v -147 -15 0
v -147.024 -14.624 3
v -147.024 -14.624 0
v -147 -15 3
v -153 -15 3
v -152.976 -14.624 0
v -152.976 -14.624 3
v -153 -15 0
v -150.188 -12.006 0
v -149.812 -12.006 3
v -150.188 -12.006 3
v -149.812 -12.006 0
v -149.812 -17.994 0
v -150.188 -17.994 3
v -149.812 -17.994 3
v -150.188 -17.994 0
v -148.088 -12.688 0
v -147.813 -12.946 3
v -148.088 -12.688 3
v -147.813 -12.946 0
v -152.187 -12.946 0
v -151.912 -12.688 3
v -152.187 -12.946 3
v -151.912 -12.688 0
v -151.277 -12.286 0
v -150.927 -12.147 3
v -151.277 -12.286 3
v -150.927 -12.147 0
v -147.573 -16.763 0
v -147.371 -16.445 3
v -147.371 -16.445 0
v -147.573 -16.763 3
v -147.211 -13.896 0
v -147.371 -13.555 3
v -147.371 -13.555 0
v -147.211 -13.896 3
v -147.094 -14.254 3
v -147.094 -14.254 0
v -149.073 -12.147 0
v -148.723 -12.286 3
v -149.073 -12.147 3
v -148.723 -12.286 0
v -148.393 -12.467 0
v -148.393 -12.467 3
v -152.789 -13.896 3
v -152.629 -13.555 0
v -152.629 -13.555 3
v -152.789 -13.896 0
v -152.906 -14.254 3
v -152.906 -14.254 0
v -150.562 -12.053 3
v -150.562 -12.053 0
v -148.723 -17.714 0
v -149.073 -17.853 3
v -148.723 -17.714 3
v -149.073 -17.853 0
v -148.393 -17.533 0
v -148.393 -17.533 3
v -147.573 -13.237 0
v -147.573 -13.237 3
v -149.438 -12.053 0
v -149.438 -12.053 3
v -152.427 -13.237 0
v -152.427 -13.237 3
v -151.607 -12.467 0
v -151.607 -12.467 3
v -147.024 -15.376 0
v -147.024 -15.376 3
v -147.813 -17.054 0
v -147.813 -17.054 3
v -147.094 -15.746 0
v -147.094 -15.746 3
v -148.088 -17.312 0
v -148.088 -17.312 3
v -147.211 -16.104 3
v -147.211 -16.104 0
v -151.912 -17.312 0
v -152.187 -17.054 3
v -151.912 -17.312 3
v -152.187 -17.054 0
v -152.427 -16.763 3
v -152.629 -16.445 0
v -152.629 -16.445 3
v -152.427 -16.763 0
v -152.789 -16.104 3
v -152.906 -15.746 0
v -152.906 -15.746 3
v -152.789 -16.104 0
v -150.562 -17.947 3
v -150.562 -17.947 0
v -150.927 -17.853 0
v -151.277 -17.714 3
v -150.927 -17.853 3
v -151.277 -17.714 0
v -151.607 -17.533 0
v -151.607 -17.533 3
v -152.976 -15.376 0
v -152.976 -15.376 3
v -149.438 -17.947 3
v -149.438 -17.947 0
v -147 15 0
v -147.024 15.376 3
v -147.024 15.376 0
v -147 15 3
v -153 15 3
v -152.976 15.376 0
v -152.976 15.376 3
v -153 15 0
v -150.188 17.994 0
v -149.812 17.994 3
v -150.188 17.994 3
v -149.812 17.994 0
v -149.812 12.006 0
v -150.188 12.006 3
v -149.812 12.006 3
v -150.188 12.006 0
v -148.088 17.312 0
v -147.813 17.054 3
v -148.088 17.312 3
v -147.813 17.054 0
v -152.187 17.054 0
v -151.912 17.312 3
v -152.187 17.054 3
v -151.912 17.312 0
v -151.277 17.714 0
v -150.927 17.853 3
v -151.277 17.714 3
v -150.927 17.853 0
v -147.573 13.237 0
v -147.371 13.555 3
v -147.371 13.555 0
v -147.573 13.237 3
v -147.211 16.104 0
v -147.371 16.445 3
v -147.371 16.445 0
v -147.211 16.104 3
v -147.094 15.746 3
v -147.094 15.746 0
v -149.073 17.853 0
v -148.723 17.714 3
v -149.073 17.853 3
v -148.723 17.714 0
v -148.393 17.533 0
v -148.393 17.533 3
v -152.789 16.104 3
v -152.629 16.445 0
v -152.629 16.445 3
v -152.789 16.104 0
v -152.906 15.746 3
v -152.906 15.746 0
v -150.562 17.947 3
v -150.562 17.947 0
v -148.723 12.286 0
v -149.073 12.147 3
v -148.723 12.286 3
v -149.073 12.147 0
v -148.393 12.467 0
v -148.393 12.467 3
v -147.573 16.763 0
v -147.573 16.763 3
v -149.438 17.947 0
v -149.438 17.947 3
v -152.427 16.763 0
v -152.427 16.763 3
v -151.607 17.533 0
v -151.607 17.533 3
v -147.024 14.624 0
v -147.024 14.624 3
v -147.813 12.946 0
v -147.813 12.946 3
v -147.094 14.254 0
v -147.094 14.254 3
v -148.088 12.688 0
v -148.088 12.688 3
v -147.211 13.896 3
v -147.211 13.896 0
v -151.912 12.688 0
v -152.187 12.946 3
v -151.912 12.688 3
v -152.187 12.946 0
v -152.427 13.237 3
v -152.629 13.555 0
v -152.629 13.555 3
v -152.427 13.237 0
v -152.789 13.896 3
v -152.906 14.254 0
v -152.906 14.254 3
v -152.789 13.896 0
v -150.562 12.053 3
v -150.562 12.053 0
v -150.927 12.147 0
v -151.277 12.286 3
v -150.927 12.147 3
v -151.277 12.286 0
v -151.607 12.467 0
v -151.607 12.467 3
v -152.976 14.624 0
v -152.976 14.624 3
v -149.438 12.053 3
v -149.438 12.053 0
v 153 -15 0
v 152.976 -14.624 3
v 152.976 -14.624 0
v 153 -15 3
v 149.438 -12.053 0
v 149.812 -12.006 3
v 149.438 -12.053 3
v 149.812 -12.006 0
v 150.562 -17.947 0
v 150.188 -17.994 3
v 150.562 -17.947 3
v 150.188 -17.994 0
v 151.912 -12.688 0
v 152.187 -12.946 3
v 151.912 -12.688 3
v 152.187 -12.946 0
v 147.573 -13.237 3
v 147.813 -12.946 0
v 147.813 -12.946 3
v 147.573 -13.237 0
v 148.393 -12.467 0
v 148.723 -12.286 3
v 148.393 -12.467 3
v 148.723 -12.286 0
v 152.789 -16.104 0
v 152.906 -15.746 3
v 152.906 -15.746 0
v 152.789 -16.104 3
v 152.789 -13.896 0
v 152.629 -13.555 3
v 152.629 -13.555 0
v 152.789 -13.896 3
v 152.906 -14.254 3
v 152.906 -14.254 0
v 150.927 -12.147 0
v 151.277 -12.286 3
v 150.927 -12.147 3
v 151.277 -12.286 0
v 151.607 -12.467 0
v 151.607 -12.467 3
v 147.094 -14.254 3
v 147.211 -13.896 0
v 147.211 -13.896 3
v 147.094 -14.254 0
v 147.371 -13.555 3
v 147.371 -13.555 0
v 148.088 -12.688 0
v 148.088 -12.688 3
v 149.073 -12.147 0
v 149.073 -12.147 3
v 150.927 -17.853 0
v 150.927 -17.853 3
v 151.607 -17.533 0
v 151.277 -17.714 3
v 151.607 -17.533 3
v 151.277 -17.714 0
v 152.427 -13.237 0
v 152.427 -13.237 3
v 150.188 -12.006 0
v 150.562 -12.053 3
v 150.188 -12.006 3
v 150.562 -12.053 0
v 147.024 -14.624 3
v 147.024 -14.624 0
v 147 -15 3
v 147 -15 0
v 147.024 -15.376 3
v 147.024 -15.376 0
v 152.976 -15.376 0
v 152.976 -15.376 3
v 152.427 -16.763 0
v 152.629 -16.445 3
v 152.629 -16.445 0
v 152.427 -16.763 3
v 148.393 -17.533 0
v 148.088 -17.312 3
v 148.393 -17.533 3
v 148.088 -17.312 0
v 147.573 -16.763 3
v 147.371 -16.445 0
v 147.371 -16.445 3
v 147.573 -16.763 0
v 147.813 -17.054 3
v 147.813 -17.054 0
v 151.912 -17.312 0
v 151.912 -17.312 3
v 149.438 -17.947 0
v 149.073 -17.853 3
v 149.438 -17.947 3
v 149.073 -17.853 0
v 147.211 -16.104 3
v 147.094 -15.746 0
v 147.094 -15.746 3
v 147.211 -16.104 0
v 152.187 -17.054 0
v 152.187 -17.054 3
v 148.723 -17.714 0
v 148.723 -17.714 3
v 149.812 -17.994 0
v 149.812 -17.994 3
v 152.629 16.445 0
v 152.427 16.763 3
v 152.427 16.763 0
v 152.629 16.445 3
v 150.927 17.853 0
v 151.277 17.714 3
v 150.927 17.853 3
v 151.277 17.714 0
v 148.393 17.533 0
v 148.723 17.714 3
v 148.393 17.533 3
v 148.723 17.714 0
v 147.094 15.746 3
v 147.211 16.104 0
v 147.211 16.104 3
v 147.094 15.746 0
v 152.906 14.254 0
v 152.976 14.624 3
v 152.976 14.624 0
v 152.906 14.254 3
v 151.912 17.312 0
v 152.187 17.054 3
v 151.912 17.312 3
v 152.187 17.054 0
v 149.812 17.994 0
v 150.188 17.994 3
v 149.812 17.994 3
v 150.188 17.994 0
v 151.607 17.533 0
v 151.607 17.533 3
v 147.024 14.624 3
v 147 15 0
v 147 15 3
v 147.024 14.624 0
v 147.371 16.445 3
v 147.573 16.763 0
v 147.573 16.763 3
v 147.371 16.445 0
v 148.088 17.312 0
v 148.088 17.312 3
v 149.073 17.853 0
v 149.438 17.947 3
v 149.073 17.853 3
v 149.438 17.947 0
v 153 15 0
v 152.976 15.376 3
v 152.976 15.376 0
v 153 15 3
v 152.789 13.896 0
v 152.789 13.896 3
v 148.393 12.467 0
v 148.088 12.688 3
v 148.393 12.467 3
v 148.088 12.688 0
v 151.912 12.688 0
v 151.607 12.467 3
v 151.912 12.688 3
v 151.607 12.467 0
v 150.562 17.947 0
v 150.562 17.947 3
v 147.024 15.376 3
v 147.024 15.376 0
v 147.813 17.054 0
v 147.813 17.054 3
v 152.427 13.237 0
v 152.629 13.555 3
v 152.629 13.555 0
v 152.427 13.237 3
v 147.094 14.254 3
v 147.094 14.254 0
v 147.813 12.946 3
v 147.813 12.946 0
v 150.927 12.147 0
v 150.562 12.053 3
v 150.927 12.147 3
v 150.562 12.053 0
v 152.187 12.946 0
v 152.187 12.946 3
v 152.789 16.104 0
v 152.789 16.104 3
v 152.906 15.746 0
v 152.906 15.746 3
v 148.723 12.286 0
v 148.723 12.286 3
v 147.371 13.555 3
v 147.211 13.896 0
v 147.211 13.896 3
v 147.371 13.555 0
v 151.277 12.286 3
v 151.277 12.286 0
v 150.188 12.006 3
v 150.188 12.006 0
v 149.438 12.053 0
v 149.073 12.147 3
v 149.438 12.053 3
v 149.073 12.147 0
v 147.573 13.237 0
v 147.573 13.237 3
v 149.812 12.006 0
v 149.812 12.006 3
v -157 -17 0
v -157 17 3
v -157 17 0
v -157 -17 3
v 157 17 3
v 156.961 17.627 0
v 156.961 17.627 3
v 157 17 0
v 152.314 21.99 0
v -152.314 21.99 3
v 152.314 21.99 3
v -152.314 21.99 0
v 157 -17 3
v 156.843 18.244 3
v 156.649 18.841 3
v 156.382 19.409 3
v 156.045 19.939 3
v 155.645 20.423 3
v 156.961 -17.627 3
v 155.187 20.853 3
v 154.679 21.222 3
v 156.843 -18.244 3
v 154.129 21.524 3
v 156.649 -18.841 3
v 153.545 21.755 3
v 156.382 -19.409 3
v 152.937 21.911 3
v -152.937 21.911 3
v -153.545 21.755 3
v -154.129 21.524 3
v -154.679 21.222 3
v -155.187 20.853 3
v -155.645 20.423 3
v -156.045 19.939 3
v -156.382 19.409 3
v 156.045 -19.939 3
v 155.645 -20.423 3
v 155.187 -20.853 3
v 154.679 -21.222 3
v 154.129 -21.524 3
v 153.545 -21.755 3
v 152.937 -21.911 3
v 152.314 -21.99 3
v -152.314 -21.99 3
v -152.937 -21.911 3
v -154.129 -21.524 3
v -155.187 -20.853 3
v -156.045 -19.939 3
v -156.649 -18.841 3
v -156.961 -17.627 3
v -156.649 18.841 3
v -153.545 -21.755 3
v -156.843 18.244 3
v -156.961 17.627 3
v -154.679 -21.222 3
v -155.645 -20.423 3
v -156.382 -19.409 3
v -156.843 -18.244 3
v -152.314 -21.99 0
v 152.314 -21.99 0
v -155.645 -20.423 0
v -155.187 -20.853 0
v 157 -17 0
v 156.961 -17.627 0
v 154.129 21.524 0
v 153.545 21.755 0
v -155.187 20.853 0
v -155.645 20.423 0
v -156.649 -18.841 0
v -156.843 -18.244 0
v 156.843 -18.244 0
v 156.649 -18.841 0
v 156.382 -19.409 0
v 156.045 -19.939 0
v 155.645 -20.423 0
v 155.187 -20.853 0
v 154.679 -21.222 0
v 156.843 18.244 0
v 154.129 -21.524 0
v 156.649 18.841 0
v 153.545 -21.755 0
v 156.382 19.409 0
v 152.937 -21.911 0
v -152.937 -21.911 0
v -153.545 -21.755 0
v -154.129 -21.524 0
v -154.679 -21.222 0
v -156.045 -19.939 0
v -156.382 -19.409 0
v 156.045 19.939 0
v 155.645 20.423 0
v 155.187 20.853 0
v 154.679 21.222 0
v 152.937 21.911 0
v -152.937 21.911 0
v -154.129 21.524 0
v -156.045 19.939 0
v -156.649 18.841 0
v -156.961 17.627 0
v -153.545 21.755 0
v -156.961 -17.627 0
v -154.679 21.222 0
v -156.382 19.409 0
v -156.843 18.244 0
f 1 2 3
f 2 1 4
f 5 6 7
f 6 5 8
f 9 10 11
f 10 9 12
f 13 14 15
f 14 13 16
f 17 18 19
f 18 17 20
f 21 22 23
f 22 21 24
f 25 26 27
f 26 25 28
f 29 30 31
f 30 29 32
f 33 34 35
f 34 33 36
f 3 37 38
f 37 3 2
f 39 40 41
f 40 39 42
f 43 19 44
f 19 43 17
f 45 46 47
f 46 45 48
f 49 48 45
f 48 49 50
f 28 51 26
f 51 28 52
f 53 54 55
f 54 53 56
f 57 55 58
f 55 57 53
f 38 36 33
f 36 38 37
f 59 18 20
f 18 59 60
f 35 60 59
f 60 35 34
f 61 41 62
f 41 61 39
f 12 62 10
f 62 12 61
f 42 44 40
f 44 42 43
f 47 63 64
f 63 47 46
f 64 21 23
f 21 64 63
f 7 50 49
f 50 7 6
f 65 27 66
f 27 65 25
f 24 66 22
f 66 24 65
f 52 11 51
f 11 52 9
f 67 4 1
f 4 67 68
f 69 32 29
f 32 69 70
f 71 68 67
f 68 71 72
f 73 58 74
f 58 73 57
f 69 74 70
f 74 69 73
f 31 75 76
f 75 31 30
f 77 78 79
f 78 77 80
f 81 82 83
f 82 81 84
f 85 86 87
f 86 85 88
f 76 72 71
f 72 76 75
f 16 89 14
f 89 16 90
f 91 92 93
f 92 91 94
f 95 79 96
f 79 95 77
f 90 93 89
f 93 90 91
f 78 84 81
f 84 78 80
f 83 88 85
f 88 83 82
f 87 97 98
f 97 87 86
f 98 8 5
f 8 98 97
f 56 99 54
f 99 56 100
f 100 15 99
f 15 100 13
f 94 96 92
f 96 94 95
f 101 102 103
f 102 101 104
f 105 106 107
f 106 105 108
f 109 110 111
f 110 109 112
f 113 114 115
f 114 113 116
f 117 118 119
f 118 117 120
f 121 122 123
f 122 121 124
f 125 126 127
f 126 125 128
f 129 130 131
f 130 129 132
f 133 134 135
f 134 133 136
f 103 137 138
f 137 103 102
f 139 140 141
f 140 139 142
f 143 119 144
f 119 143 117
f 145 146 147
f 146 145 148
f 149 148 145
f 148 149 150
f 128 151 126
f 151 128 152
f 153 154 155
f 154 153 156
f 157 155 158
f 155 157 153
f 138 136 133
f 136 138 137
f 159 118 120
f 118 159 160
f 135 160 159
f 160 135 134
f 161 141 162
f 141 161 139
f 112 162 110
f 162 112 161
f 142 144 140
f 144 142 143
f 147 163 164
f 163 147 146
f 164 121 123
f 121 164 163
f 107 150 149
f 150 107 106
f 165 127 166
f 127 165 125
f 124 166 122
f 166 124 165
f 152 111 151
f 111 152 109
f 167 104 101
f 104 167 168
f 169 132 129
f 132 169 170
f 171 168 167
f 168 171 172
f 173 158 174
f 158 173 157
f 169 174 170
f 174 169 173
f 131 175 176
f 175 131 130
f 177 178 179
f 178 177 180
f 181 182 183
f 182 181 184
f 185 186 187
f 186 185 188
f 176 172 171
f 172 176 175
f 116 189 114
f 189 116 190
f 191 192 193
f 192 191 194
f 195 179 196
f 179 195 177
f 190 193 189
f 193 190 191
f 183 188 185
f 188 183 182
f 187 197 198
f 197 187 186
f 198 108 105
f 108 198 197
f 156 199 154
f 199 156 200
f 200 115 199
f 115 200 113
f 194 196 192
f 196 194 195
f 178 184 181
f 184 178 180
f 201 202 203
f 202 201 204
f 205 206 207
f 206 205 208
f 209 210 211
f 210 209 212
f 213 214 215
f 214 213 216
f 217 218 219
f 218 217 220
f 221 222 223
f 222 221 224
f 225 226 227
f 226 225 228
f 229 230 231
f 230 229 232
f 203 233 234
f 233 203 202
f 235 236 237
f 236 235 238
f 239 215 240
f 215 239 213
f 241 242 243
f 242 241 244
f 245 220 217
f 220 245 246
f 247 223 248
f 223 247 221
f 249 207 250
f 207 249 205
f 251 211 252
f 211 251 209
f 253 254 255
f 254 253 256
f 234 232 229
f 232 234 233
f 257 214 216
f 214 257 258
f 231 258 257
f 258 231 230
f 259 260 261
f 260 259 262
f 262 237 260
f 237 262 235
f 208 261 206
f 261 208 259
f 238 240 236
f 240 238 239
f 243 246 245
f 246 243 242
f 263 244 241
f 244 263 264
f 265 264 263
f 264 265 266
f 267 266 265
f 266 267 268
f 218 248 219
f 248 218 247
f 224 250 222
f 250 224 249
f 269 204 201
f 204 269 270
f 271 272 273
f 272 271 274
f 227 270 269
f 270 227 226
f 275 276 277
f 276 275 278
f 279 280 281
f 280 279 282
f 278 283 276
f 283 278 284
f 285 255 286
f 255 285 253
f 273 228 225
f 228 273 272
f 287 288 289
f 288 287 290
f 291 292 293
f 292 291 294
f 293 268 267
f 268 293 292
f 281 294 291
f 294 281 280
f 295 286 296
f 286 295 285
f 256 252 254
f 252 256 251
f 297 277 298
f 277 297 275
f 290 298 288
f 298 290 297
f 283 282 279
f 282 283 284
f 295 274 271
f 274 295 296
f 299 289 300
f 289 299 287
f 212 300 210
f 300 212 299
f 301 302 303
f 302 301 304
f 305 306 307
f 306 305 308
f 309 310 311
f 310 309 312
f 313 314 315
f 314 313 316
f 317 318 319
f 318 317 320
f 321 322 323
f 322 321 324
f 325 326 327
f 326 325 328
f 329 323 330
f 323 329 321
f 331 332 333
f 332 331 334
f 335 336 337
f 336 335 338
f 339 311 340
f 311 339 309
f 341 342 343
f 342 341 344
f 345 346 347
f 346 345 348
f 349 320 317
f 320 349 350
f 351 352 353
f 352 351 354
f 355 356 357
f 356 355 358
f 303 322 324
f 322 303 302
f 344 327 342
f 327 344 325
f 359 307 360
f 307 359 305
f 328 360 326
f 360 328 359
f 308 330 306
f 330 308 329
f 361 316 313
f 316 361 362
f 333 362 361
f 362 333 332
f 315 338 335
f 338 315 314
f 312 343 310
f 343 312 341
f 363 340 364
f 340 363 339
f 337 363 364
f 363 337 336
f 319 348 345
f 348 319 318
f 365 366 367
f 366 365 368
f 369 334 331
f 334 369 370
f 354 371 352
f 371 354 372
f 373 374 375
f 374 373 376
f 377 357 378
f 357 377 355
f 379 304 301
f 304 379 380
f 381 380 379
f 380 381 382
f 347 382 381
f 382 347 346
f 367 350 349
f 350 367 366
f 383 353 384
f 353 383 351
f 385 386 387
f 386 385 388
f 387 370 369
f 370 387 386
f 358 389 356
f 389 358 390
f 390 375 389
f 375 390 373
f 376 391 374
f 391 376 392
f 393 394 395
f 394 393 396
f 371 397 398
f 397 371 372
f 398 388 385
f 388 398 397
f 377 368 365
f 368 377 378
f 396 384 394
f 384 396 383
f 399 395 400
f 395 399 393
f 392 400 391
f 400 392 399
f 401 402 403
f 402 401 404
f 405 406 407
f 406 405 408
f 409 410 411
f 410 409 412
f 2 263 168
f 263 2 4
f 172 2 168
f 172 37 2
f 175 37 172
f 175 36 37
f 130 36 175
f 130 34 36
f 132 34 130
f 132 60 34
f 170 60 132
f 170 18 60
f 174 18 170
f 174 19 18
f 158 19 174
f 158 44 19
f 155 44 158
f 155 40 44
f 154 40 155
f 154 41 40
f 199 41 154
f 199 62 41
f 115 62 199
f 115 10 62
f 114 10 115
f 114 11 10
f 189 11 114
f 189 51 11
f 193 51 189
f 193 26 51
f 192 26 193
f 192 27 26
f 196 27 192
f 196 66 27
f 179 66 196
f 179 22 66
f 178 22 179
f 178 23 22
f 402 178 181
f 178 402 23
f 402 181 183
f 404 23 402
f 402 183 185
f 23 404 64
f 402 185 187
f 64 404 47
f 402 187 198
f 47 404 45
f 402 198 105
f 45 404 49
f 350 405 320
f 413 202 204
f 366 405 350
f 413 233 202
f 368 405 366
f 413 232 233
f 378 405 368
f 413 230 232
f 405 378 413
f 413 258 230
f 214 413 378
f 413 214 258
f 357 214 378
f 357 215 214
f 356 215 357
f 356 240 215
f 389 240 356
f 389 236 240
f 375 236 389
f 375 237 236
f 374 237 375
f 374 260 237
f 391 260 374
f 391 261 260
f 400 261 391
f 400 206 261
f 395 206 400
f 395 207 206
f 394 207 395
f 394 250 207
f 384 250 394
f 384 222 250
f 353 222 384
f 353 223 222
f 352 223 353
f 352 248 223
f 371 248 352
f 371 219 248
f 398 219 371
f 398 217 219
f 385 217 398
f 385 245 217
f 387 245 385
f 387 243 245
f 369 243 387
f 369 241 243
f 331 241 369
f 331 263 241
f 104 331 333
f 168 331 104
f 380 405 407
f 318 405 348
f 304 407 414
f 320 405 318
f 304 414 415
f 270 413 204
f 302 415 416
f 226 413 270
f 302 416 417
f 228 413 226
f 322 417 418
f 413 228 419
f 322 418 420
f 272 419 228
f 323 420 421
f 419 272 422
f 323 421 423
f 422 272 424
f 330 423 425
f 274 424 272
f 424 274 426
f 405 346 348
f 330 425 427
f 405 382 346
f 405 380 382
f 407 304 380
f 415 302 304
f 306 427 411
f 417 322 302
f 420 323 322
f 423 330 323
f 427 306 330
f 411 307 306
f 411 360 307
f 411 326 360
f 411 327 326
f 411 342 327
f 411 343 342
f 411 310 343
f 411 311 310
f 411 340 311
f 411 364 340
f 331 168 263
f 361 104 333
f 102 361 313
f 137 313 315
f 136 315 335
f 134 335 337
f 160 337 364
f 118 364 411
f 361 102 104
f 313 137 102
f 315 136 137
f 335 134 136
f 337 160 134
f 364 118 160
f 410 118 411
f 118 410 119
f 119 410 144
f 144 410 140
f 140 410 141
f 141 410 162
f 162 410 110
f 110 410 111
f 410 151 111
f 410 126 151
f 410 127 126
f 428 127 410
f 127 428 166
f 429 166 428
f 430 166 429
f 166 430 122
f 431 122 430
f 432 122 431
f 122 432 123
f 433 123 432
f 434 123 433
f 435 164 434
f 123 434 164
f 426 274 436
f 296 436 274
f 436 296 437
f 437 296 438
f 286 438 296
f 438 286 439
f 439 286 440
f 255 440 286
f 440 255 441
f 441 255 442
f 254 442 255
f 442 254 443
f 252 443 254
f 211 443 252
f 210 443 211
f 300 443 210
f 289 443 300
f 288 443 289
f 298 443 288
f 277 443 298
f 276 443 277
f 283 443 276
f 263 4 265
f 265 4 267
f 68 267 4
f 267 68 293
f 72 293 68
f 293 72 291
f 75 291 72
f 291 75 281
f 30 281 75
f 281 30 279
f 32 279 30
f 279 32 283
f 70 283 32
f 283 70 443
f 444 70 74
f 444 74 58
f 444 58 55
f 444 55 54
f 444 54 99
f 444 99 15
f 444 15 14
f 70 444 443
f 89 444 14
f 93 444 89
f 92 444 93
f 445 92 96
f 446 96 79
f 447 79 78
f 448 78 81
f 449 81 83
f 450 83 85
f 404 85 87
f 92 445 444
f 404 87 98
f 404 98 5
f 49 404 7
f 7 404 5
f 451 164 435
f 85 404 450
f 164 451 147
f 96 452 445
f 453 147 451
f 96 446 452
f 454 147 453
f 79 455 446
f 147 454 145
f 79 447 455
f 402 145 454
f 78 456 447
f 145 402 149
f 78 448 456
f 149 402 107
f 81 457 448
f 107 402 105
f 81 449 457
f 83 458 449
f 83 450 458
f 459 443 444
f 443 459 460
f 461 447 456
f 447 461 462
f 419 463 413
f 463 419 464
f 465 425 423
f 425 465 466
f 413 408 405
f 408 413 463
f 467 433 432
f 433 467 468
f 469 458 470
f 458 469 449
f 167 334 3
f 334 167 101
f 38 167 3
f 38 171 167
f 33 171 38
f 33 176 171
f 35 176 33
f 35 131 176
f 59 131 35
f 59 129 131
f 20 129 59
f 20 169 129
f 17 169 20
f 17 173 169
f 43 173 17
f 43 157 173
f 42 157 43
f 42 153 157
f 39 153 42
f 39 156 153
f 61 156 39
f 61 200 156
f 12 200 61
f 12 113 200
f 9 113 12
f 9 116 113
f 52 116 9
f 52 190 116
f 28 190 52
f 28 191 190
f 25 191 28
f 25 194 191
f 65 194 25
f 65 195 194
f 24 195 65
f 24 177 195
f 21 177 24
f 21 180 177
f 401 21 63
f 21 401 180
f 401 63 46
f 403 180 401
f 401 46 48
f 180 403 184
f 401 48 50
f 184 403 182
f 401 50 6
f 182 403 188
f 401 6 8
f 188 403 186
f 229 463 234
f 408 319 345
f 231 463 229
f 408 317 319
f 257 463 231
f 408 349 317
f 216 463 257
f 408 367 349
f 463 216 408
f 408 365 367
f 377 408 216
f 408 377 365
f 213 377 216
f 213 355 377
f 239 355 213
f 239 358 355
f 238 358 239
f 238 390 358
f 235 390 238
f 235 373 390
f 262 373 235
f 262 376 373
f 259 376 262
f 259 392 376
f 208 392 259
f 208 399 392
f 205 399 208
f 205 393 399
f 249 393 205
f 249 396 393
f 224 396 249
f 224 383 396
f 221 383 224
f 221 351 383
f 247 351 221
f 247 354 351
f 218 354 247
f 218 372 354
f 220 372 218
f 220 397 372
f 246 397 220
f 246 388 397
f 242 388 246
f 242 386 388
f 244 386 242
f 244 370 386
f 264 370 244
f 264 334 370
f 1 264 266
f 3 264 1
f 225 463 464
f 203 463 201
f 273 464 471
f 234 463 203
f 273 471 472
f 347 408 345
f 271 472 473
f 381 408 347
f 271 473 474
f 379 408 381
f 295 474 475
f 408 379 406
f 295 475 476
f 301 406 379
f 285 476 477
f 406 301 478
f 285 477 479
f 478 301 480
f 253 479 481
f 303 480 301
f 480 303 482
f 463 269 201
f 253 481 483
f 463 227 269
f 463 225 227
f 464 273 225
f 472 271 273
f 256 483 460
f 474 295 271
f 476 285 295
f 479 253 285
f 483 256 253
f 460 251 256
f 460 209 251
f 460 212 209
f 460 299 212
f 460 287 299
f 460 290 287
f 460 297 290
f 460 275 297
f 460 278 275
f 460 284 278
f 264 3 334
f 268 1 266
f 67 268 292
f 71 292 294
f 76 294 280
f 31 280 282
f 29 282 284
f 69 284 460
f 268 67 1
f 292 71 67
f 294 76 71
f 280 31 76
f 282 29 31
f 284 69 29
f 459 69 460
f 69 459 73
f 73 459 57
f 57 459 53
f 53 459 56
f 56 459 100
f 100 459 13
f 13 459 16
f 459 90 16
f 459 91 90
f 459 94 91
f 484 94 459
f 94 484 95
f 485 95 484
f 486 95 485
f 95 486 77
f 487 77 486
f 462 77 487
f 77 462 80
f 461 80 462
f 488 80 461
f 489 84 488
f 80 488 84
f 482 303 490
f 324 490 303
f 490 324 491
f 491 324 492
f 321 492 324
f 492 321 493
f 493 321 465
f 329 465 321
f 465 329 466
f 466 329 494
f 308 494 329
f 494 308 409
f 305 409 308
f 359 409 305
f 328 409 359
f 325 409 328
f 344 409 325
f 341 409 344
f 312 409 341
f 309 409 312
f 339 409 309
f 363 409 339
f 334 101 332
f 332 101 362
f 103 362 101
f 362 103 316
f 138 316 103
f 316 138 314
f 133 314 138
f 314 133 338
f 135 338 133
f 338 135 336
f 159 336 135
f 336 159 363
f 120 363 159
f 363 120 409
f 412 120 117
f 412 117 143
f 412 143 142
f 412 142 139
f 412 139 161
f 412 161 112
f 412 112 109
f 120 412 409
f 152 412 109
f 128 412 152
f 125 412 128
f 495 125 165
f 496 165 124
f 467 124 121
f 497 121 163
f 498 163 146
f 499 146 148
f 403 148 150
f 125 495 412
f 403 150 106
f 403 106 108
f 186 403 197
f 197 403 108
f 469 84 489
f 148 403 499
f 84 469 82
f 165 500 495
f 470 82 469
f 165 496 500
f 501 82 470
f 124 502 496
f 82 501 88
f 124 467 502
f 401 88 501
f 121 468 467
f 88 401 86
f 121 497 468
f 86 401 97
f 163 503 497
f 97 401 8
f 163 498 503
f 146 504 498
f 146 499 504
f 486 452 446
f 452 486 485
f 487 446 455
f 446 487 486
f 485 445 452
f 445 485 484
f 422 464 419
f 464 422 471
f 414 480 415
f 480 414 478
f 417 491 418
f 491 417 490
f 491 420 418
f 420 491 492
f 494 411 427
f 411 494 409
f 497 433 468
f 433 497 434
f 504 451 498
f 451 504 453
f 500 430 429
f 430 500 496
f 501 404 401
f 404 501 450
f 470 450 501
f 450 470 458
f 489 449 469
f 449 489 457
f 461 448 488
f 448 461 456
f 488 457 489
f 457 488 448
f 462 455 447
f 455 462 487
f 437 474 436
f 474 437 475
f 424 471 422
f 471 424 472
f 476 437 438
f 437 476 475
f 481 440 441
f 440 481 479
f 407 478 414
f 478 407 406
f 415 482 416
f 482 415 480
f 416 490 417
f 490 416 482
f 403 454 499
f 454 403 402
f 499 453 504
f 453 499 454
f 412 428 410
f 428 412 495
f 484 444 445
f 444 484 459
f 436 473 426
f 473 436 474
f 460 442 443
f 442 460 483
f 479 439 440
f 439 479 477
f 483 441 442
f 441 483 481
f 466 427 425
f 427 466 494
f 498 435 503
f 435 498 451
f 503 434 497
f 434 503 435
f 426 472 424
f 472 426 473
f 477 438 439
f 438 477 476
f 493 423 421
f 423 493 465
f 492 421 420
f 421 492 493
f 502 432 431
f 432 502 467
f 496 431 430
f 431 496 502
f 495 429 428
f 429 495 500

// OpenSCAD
$fn = 50;


difference() {
	union() {
		hull() {
			translate(v = [-152.0000000000, 17.0000000000, 0]) {
				cylinder(h = 3, r = 5);
			}
			translate(v = [152.0000000000, 17.0000000000, 0]) {
				cylinder(h = 3, r = 5);
			}
			translate(v = [-152.0000000000, -17.0000000000, 0]) {
				cylinder(h = 3, r = 5);
			}
			translate(v = [152.0000000000, -17.0000000000, 0]) {
				cylinder(h = 3, r = 5);
			}
		}
	}
	union() {
		translate(v = [-150.0000000000, -15.0000000000, -100.0000000000]) {
			cylinder(h = 200, r = 3.0000000000);
		}
		translate(v = [-150.0000000000, 15.0000000000, -100.0000000000]) {
			cylinder(h = 200, r = 3.0000000000);
		}
		translate(v = [150.0000000000, -15.0000000000, -100.0000000000]) {
			cylinder(h = 200, r = 3.0000000000);
		}
		translate(v = [150.0000000000, 15.0000000000, -100.0000000000]) {
			cylinder(h = 200, r = 3.0000000000);
		}
	}
}
